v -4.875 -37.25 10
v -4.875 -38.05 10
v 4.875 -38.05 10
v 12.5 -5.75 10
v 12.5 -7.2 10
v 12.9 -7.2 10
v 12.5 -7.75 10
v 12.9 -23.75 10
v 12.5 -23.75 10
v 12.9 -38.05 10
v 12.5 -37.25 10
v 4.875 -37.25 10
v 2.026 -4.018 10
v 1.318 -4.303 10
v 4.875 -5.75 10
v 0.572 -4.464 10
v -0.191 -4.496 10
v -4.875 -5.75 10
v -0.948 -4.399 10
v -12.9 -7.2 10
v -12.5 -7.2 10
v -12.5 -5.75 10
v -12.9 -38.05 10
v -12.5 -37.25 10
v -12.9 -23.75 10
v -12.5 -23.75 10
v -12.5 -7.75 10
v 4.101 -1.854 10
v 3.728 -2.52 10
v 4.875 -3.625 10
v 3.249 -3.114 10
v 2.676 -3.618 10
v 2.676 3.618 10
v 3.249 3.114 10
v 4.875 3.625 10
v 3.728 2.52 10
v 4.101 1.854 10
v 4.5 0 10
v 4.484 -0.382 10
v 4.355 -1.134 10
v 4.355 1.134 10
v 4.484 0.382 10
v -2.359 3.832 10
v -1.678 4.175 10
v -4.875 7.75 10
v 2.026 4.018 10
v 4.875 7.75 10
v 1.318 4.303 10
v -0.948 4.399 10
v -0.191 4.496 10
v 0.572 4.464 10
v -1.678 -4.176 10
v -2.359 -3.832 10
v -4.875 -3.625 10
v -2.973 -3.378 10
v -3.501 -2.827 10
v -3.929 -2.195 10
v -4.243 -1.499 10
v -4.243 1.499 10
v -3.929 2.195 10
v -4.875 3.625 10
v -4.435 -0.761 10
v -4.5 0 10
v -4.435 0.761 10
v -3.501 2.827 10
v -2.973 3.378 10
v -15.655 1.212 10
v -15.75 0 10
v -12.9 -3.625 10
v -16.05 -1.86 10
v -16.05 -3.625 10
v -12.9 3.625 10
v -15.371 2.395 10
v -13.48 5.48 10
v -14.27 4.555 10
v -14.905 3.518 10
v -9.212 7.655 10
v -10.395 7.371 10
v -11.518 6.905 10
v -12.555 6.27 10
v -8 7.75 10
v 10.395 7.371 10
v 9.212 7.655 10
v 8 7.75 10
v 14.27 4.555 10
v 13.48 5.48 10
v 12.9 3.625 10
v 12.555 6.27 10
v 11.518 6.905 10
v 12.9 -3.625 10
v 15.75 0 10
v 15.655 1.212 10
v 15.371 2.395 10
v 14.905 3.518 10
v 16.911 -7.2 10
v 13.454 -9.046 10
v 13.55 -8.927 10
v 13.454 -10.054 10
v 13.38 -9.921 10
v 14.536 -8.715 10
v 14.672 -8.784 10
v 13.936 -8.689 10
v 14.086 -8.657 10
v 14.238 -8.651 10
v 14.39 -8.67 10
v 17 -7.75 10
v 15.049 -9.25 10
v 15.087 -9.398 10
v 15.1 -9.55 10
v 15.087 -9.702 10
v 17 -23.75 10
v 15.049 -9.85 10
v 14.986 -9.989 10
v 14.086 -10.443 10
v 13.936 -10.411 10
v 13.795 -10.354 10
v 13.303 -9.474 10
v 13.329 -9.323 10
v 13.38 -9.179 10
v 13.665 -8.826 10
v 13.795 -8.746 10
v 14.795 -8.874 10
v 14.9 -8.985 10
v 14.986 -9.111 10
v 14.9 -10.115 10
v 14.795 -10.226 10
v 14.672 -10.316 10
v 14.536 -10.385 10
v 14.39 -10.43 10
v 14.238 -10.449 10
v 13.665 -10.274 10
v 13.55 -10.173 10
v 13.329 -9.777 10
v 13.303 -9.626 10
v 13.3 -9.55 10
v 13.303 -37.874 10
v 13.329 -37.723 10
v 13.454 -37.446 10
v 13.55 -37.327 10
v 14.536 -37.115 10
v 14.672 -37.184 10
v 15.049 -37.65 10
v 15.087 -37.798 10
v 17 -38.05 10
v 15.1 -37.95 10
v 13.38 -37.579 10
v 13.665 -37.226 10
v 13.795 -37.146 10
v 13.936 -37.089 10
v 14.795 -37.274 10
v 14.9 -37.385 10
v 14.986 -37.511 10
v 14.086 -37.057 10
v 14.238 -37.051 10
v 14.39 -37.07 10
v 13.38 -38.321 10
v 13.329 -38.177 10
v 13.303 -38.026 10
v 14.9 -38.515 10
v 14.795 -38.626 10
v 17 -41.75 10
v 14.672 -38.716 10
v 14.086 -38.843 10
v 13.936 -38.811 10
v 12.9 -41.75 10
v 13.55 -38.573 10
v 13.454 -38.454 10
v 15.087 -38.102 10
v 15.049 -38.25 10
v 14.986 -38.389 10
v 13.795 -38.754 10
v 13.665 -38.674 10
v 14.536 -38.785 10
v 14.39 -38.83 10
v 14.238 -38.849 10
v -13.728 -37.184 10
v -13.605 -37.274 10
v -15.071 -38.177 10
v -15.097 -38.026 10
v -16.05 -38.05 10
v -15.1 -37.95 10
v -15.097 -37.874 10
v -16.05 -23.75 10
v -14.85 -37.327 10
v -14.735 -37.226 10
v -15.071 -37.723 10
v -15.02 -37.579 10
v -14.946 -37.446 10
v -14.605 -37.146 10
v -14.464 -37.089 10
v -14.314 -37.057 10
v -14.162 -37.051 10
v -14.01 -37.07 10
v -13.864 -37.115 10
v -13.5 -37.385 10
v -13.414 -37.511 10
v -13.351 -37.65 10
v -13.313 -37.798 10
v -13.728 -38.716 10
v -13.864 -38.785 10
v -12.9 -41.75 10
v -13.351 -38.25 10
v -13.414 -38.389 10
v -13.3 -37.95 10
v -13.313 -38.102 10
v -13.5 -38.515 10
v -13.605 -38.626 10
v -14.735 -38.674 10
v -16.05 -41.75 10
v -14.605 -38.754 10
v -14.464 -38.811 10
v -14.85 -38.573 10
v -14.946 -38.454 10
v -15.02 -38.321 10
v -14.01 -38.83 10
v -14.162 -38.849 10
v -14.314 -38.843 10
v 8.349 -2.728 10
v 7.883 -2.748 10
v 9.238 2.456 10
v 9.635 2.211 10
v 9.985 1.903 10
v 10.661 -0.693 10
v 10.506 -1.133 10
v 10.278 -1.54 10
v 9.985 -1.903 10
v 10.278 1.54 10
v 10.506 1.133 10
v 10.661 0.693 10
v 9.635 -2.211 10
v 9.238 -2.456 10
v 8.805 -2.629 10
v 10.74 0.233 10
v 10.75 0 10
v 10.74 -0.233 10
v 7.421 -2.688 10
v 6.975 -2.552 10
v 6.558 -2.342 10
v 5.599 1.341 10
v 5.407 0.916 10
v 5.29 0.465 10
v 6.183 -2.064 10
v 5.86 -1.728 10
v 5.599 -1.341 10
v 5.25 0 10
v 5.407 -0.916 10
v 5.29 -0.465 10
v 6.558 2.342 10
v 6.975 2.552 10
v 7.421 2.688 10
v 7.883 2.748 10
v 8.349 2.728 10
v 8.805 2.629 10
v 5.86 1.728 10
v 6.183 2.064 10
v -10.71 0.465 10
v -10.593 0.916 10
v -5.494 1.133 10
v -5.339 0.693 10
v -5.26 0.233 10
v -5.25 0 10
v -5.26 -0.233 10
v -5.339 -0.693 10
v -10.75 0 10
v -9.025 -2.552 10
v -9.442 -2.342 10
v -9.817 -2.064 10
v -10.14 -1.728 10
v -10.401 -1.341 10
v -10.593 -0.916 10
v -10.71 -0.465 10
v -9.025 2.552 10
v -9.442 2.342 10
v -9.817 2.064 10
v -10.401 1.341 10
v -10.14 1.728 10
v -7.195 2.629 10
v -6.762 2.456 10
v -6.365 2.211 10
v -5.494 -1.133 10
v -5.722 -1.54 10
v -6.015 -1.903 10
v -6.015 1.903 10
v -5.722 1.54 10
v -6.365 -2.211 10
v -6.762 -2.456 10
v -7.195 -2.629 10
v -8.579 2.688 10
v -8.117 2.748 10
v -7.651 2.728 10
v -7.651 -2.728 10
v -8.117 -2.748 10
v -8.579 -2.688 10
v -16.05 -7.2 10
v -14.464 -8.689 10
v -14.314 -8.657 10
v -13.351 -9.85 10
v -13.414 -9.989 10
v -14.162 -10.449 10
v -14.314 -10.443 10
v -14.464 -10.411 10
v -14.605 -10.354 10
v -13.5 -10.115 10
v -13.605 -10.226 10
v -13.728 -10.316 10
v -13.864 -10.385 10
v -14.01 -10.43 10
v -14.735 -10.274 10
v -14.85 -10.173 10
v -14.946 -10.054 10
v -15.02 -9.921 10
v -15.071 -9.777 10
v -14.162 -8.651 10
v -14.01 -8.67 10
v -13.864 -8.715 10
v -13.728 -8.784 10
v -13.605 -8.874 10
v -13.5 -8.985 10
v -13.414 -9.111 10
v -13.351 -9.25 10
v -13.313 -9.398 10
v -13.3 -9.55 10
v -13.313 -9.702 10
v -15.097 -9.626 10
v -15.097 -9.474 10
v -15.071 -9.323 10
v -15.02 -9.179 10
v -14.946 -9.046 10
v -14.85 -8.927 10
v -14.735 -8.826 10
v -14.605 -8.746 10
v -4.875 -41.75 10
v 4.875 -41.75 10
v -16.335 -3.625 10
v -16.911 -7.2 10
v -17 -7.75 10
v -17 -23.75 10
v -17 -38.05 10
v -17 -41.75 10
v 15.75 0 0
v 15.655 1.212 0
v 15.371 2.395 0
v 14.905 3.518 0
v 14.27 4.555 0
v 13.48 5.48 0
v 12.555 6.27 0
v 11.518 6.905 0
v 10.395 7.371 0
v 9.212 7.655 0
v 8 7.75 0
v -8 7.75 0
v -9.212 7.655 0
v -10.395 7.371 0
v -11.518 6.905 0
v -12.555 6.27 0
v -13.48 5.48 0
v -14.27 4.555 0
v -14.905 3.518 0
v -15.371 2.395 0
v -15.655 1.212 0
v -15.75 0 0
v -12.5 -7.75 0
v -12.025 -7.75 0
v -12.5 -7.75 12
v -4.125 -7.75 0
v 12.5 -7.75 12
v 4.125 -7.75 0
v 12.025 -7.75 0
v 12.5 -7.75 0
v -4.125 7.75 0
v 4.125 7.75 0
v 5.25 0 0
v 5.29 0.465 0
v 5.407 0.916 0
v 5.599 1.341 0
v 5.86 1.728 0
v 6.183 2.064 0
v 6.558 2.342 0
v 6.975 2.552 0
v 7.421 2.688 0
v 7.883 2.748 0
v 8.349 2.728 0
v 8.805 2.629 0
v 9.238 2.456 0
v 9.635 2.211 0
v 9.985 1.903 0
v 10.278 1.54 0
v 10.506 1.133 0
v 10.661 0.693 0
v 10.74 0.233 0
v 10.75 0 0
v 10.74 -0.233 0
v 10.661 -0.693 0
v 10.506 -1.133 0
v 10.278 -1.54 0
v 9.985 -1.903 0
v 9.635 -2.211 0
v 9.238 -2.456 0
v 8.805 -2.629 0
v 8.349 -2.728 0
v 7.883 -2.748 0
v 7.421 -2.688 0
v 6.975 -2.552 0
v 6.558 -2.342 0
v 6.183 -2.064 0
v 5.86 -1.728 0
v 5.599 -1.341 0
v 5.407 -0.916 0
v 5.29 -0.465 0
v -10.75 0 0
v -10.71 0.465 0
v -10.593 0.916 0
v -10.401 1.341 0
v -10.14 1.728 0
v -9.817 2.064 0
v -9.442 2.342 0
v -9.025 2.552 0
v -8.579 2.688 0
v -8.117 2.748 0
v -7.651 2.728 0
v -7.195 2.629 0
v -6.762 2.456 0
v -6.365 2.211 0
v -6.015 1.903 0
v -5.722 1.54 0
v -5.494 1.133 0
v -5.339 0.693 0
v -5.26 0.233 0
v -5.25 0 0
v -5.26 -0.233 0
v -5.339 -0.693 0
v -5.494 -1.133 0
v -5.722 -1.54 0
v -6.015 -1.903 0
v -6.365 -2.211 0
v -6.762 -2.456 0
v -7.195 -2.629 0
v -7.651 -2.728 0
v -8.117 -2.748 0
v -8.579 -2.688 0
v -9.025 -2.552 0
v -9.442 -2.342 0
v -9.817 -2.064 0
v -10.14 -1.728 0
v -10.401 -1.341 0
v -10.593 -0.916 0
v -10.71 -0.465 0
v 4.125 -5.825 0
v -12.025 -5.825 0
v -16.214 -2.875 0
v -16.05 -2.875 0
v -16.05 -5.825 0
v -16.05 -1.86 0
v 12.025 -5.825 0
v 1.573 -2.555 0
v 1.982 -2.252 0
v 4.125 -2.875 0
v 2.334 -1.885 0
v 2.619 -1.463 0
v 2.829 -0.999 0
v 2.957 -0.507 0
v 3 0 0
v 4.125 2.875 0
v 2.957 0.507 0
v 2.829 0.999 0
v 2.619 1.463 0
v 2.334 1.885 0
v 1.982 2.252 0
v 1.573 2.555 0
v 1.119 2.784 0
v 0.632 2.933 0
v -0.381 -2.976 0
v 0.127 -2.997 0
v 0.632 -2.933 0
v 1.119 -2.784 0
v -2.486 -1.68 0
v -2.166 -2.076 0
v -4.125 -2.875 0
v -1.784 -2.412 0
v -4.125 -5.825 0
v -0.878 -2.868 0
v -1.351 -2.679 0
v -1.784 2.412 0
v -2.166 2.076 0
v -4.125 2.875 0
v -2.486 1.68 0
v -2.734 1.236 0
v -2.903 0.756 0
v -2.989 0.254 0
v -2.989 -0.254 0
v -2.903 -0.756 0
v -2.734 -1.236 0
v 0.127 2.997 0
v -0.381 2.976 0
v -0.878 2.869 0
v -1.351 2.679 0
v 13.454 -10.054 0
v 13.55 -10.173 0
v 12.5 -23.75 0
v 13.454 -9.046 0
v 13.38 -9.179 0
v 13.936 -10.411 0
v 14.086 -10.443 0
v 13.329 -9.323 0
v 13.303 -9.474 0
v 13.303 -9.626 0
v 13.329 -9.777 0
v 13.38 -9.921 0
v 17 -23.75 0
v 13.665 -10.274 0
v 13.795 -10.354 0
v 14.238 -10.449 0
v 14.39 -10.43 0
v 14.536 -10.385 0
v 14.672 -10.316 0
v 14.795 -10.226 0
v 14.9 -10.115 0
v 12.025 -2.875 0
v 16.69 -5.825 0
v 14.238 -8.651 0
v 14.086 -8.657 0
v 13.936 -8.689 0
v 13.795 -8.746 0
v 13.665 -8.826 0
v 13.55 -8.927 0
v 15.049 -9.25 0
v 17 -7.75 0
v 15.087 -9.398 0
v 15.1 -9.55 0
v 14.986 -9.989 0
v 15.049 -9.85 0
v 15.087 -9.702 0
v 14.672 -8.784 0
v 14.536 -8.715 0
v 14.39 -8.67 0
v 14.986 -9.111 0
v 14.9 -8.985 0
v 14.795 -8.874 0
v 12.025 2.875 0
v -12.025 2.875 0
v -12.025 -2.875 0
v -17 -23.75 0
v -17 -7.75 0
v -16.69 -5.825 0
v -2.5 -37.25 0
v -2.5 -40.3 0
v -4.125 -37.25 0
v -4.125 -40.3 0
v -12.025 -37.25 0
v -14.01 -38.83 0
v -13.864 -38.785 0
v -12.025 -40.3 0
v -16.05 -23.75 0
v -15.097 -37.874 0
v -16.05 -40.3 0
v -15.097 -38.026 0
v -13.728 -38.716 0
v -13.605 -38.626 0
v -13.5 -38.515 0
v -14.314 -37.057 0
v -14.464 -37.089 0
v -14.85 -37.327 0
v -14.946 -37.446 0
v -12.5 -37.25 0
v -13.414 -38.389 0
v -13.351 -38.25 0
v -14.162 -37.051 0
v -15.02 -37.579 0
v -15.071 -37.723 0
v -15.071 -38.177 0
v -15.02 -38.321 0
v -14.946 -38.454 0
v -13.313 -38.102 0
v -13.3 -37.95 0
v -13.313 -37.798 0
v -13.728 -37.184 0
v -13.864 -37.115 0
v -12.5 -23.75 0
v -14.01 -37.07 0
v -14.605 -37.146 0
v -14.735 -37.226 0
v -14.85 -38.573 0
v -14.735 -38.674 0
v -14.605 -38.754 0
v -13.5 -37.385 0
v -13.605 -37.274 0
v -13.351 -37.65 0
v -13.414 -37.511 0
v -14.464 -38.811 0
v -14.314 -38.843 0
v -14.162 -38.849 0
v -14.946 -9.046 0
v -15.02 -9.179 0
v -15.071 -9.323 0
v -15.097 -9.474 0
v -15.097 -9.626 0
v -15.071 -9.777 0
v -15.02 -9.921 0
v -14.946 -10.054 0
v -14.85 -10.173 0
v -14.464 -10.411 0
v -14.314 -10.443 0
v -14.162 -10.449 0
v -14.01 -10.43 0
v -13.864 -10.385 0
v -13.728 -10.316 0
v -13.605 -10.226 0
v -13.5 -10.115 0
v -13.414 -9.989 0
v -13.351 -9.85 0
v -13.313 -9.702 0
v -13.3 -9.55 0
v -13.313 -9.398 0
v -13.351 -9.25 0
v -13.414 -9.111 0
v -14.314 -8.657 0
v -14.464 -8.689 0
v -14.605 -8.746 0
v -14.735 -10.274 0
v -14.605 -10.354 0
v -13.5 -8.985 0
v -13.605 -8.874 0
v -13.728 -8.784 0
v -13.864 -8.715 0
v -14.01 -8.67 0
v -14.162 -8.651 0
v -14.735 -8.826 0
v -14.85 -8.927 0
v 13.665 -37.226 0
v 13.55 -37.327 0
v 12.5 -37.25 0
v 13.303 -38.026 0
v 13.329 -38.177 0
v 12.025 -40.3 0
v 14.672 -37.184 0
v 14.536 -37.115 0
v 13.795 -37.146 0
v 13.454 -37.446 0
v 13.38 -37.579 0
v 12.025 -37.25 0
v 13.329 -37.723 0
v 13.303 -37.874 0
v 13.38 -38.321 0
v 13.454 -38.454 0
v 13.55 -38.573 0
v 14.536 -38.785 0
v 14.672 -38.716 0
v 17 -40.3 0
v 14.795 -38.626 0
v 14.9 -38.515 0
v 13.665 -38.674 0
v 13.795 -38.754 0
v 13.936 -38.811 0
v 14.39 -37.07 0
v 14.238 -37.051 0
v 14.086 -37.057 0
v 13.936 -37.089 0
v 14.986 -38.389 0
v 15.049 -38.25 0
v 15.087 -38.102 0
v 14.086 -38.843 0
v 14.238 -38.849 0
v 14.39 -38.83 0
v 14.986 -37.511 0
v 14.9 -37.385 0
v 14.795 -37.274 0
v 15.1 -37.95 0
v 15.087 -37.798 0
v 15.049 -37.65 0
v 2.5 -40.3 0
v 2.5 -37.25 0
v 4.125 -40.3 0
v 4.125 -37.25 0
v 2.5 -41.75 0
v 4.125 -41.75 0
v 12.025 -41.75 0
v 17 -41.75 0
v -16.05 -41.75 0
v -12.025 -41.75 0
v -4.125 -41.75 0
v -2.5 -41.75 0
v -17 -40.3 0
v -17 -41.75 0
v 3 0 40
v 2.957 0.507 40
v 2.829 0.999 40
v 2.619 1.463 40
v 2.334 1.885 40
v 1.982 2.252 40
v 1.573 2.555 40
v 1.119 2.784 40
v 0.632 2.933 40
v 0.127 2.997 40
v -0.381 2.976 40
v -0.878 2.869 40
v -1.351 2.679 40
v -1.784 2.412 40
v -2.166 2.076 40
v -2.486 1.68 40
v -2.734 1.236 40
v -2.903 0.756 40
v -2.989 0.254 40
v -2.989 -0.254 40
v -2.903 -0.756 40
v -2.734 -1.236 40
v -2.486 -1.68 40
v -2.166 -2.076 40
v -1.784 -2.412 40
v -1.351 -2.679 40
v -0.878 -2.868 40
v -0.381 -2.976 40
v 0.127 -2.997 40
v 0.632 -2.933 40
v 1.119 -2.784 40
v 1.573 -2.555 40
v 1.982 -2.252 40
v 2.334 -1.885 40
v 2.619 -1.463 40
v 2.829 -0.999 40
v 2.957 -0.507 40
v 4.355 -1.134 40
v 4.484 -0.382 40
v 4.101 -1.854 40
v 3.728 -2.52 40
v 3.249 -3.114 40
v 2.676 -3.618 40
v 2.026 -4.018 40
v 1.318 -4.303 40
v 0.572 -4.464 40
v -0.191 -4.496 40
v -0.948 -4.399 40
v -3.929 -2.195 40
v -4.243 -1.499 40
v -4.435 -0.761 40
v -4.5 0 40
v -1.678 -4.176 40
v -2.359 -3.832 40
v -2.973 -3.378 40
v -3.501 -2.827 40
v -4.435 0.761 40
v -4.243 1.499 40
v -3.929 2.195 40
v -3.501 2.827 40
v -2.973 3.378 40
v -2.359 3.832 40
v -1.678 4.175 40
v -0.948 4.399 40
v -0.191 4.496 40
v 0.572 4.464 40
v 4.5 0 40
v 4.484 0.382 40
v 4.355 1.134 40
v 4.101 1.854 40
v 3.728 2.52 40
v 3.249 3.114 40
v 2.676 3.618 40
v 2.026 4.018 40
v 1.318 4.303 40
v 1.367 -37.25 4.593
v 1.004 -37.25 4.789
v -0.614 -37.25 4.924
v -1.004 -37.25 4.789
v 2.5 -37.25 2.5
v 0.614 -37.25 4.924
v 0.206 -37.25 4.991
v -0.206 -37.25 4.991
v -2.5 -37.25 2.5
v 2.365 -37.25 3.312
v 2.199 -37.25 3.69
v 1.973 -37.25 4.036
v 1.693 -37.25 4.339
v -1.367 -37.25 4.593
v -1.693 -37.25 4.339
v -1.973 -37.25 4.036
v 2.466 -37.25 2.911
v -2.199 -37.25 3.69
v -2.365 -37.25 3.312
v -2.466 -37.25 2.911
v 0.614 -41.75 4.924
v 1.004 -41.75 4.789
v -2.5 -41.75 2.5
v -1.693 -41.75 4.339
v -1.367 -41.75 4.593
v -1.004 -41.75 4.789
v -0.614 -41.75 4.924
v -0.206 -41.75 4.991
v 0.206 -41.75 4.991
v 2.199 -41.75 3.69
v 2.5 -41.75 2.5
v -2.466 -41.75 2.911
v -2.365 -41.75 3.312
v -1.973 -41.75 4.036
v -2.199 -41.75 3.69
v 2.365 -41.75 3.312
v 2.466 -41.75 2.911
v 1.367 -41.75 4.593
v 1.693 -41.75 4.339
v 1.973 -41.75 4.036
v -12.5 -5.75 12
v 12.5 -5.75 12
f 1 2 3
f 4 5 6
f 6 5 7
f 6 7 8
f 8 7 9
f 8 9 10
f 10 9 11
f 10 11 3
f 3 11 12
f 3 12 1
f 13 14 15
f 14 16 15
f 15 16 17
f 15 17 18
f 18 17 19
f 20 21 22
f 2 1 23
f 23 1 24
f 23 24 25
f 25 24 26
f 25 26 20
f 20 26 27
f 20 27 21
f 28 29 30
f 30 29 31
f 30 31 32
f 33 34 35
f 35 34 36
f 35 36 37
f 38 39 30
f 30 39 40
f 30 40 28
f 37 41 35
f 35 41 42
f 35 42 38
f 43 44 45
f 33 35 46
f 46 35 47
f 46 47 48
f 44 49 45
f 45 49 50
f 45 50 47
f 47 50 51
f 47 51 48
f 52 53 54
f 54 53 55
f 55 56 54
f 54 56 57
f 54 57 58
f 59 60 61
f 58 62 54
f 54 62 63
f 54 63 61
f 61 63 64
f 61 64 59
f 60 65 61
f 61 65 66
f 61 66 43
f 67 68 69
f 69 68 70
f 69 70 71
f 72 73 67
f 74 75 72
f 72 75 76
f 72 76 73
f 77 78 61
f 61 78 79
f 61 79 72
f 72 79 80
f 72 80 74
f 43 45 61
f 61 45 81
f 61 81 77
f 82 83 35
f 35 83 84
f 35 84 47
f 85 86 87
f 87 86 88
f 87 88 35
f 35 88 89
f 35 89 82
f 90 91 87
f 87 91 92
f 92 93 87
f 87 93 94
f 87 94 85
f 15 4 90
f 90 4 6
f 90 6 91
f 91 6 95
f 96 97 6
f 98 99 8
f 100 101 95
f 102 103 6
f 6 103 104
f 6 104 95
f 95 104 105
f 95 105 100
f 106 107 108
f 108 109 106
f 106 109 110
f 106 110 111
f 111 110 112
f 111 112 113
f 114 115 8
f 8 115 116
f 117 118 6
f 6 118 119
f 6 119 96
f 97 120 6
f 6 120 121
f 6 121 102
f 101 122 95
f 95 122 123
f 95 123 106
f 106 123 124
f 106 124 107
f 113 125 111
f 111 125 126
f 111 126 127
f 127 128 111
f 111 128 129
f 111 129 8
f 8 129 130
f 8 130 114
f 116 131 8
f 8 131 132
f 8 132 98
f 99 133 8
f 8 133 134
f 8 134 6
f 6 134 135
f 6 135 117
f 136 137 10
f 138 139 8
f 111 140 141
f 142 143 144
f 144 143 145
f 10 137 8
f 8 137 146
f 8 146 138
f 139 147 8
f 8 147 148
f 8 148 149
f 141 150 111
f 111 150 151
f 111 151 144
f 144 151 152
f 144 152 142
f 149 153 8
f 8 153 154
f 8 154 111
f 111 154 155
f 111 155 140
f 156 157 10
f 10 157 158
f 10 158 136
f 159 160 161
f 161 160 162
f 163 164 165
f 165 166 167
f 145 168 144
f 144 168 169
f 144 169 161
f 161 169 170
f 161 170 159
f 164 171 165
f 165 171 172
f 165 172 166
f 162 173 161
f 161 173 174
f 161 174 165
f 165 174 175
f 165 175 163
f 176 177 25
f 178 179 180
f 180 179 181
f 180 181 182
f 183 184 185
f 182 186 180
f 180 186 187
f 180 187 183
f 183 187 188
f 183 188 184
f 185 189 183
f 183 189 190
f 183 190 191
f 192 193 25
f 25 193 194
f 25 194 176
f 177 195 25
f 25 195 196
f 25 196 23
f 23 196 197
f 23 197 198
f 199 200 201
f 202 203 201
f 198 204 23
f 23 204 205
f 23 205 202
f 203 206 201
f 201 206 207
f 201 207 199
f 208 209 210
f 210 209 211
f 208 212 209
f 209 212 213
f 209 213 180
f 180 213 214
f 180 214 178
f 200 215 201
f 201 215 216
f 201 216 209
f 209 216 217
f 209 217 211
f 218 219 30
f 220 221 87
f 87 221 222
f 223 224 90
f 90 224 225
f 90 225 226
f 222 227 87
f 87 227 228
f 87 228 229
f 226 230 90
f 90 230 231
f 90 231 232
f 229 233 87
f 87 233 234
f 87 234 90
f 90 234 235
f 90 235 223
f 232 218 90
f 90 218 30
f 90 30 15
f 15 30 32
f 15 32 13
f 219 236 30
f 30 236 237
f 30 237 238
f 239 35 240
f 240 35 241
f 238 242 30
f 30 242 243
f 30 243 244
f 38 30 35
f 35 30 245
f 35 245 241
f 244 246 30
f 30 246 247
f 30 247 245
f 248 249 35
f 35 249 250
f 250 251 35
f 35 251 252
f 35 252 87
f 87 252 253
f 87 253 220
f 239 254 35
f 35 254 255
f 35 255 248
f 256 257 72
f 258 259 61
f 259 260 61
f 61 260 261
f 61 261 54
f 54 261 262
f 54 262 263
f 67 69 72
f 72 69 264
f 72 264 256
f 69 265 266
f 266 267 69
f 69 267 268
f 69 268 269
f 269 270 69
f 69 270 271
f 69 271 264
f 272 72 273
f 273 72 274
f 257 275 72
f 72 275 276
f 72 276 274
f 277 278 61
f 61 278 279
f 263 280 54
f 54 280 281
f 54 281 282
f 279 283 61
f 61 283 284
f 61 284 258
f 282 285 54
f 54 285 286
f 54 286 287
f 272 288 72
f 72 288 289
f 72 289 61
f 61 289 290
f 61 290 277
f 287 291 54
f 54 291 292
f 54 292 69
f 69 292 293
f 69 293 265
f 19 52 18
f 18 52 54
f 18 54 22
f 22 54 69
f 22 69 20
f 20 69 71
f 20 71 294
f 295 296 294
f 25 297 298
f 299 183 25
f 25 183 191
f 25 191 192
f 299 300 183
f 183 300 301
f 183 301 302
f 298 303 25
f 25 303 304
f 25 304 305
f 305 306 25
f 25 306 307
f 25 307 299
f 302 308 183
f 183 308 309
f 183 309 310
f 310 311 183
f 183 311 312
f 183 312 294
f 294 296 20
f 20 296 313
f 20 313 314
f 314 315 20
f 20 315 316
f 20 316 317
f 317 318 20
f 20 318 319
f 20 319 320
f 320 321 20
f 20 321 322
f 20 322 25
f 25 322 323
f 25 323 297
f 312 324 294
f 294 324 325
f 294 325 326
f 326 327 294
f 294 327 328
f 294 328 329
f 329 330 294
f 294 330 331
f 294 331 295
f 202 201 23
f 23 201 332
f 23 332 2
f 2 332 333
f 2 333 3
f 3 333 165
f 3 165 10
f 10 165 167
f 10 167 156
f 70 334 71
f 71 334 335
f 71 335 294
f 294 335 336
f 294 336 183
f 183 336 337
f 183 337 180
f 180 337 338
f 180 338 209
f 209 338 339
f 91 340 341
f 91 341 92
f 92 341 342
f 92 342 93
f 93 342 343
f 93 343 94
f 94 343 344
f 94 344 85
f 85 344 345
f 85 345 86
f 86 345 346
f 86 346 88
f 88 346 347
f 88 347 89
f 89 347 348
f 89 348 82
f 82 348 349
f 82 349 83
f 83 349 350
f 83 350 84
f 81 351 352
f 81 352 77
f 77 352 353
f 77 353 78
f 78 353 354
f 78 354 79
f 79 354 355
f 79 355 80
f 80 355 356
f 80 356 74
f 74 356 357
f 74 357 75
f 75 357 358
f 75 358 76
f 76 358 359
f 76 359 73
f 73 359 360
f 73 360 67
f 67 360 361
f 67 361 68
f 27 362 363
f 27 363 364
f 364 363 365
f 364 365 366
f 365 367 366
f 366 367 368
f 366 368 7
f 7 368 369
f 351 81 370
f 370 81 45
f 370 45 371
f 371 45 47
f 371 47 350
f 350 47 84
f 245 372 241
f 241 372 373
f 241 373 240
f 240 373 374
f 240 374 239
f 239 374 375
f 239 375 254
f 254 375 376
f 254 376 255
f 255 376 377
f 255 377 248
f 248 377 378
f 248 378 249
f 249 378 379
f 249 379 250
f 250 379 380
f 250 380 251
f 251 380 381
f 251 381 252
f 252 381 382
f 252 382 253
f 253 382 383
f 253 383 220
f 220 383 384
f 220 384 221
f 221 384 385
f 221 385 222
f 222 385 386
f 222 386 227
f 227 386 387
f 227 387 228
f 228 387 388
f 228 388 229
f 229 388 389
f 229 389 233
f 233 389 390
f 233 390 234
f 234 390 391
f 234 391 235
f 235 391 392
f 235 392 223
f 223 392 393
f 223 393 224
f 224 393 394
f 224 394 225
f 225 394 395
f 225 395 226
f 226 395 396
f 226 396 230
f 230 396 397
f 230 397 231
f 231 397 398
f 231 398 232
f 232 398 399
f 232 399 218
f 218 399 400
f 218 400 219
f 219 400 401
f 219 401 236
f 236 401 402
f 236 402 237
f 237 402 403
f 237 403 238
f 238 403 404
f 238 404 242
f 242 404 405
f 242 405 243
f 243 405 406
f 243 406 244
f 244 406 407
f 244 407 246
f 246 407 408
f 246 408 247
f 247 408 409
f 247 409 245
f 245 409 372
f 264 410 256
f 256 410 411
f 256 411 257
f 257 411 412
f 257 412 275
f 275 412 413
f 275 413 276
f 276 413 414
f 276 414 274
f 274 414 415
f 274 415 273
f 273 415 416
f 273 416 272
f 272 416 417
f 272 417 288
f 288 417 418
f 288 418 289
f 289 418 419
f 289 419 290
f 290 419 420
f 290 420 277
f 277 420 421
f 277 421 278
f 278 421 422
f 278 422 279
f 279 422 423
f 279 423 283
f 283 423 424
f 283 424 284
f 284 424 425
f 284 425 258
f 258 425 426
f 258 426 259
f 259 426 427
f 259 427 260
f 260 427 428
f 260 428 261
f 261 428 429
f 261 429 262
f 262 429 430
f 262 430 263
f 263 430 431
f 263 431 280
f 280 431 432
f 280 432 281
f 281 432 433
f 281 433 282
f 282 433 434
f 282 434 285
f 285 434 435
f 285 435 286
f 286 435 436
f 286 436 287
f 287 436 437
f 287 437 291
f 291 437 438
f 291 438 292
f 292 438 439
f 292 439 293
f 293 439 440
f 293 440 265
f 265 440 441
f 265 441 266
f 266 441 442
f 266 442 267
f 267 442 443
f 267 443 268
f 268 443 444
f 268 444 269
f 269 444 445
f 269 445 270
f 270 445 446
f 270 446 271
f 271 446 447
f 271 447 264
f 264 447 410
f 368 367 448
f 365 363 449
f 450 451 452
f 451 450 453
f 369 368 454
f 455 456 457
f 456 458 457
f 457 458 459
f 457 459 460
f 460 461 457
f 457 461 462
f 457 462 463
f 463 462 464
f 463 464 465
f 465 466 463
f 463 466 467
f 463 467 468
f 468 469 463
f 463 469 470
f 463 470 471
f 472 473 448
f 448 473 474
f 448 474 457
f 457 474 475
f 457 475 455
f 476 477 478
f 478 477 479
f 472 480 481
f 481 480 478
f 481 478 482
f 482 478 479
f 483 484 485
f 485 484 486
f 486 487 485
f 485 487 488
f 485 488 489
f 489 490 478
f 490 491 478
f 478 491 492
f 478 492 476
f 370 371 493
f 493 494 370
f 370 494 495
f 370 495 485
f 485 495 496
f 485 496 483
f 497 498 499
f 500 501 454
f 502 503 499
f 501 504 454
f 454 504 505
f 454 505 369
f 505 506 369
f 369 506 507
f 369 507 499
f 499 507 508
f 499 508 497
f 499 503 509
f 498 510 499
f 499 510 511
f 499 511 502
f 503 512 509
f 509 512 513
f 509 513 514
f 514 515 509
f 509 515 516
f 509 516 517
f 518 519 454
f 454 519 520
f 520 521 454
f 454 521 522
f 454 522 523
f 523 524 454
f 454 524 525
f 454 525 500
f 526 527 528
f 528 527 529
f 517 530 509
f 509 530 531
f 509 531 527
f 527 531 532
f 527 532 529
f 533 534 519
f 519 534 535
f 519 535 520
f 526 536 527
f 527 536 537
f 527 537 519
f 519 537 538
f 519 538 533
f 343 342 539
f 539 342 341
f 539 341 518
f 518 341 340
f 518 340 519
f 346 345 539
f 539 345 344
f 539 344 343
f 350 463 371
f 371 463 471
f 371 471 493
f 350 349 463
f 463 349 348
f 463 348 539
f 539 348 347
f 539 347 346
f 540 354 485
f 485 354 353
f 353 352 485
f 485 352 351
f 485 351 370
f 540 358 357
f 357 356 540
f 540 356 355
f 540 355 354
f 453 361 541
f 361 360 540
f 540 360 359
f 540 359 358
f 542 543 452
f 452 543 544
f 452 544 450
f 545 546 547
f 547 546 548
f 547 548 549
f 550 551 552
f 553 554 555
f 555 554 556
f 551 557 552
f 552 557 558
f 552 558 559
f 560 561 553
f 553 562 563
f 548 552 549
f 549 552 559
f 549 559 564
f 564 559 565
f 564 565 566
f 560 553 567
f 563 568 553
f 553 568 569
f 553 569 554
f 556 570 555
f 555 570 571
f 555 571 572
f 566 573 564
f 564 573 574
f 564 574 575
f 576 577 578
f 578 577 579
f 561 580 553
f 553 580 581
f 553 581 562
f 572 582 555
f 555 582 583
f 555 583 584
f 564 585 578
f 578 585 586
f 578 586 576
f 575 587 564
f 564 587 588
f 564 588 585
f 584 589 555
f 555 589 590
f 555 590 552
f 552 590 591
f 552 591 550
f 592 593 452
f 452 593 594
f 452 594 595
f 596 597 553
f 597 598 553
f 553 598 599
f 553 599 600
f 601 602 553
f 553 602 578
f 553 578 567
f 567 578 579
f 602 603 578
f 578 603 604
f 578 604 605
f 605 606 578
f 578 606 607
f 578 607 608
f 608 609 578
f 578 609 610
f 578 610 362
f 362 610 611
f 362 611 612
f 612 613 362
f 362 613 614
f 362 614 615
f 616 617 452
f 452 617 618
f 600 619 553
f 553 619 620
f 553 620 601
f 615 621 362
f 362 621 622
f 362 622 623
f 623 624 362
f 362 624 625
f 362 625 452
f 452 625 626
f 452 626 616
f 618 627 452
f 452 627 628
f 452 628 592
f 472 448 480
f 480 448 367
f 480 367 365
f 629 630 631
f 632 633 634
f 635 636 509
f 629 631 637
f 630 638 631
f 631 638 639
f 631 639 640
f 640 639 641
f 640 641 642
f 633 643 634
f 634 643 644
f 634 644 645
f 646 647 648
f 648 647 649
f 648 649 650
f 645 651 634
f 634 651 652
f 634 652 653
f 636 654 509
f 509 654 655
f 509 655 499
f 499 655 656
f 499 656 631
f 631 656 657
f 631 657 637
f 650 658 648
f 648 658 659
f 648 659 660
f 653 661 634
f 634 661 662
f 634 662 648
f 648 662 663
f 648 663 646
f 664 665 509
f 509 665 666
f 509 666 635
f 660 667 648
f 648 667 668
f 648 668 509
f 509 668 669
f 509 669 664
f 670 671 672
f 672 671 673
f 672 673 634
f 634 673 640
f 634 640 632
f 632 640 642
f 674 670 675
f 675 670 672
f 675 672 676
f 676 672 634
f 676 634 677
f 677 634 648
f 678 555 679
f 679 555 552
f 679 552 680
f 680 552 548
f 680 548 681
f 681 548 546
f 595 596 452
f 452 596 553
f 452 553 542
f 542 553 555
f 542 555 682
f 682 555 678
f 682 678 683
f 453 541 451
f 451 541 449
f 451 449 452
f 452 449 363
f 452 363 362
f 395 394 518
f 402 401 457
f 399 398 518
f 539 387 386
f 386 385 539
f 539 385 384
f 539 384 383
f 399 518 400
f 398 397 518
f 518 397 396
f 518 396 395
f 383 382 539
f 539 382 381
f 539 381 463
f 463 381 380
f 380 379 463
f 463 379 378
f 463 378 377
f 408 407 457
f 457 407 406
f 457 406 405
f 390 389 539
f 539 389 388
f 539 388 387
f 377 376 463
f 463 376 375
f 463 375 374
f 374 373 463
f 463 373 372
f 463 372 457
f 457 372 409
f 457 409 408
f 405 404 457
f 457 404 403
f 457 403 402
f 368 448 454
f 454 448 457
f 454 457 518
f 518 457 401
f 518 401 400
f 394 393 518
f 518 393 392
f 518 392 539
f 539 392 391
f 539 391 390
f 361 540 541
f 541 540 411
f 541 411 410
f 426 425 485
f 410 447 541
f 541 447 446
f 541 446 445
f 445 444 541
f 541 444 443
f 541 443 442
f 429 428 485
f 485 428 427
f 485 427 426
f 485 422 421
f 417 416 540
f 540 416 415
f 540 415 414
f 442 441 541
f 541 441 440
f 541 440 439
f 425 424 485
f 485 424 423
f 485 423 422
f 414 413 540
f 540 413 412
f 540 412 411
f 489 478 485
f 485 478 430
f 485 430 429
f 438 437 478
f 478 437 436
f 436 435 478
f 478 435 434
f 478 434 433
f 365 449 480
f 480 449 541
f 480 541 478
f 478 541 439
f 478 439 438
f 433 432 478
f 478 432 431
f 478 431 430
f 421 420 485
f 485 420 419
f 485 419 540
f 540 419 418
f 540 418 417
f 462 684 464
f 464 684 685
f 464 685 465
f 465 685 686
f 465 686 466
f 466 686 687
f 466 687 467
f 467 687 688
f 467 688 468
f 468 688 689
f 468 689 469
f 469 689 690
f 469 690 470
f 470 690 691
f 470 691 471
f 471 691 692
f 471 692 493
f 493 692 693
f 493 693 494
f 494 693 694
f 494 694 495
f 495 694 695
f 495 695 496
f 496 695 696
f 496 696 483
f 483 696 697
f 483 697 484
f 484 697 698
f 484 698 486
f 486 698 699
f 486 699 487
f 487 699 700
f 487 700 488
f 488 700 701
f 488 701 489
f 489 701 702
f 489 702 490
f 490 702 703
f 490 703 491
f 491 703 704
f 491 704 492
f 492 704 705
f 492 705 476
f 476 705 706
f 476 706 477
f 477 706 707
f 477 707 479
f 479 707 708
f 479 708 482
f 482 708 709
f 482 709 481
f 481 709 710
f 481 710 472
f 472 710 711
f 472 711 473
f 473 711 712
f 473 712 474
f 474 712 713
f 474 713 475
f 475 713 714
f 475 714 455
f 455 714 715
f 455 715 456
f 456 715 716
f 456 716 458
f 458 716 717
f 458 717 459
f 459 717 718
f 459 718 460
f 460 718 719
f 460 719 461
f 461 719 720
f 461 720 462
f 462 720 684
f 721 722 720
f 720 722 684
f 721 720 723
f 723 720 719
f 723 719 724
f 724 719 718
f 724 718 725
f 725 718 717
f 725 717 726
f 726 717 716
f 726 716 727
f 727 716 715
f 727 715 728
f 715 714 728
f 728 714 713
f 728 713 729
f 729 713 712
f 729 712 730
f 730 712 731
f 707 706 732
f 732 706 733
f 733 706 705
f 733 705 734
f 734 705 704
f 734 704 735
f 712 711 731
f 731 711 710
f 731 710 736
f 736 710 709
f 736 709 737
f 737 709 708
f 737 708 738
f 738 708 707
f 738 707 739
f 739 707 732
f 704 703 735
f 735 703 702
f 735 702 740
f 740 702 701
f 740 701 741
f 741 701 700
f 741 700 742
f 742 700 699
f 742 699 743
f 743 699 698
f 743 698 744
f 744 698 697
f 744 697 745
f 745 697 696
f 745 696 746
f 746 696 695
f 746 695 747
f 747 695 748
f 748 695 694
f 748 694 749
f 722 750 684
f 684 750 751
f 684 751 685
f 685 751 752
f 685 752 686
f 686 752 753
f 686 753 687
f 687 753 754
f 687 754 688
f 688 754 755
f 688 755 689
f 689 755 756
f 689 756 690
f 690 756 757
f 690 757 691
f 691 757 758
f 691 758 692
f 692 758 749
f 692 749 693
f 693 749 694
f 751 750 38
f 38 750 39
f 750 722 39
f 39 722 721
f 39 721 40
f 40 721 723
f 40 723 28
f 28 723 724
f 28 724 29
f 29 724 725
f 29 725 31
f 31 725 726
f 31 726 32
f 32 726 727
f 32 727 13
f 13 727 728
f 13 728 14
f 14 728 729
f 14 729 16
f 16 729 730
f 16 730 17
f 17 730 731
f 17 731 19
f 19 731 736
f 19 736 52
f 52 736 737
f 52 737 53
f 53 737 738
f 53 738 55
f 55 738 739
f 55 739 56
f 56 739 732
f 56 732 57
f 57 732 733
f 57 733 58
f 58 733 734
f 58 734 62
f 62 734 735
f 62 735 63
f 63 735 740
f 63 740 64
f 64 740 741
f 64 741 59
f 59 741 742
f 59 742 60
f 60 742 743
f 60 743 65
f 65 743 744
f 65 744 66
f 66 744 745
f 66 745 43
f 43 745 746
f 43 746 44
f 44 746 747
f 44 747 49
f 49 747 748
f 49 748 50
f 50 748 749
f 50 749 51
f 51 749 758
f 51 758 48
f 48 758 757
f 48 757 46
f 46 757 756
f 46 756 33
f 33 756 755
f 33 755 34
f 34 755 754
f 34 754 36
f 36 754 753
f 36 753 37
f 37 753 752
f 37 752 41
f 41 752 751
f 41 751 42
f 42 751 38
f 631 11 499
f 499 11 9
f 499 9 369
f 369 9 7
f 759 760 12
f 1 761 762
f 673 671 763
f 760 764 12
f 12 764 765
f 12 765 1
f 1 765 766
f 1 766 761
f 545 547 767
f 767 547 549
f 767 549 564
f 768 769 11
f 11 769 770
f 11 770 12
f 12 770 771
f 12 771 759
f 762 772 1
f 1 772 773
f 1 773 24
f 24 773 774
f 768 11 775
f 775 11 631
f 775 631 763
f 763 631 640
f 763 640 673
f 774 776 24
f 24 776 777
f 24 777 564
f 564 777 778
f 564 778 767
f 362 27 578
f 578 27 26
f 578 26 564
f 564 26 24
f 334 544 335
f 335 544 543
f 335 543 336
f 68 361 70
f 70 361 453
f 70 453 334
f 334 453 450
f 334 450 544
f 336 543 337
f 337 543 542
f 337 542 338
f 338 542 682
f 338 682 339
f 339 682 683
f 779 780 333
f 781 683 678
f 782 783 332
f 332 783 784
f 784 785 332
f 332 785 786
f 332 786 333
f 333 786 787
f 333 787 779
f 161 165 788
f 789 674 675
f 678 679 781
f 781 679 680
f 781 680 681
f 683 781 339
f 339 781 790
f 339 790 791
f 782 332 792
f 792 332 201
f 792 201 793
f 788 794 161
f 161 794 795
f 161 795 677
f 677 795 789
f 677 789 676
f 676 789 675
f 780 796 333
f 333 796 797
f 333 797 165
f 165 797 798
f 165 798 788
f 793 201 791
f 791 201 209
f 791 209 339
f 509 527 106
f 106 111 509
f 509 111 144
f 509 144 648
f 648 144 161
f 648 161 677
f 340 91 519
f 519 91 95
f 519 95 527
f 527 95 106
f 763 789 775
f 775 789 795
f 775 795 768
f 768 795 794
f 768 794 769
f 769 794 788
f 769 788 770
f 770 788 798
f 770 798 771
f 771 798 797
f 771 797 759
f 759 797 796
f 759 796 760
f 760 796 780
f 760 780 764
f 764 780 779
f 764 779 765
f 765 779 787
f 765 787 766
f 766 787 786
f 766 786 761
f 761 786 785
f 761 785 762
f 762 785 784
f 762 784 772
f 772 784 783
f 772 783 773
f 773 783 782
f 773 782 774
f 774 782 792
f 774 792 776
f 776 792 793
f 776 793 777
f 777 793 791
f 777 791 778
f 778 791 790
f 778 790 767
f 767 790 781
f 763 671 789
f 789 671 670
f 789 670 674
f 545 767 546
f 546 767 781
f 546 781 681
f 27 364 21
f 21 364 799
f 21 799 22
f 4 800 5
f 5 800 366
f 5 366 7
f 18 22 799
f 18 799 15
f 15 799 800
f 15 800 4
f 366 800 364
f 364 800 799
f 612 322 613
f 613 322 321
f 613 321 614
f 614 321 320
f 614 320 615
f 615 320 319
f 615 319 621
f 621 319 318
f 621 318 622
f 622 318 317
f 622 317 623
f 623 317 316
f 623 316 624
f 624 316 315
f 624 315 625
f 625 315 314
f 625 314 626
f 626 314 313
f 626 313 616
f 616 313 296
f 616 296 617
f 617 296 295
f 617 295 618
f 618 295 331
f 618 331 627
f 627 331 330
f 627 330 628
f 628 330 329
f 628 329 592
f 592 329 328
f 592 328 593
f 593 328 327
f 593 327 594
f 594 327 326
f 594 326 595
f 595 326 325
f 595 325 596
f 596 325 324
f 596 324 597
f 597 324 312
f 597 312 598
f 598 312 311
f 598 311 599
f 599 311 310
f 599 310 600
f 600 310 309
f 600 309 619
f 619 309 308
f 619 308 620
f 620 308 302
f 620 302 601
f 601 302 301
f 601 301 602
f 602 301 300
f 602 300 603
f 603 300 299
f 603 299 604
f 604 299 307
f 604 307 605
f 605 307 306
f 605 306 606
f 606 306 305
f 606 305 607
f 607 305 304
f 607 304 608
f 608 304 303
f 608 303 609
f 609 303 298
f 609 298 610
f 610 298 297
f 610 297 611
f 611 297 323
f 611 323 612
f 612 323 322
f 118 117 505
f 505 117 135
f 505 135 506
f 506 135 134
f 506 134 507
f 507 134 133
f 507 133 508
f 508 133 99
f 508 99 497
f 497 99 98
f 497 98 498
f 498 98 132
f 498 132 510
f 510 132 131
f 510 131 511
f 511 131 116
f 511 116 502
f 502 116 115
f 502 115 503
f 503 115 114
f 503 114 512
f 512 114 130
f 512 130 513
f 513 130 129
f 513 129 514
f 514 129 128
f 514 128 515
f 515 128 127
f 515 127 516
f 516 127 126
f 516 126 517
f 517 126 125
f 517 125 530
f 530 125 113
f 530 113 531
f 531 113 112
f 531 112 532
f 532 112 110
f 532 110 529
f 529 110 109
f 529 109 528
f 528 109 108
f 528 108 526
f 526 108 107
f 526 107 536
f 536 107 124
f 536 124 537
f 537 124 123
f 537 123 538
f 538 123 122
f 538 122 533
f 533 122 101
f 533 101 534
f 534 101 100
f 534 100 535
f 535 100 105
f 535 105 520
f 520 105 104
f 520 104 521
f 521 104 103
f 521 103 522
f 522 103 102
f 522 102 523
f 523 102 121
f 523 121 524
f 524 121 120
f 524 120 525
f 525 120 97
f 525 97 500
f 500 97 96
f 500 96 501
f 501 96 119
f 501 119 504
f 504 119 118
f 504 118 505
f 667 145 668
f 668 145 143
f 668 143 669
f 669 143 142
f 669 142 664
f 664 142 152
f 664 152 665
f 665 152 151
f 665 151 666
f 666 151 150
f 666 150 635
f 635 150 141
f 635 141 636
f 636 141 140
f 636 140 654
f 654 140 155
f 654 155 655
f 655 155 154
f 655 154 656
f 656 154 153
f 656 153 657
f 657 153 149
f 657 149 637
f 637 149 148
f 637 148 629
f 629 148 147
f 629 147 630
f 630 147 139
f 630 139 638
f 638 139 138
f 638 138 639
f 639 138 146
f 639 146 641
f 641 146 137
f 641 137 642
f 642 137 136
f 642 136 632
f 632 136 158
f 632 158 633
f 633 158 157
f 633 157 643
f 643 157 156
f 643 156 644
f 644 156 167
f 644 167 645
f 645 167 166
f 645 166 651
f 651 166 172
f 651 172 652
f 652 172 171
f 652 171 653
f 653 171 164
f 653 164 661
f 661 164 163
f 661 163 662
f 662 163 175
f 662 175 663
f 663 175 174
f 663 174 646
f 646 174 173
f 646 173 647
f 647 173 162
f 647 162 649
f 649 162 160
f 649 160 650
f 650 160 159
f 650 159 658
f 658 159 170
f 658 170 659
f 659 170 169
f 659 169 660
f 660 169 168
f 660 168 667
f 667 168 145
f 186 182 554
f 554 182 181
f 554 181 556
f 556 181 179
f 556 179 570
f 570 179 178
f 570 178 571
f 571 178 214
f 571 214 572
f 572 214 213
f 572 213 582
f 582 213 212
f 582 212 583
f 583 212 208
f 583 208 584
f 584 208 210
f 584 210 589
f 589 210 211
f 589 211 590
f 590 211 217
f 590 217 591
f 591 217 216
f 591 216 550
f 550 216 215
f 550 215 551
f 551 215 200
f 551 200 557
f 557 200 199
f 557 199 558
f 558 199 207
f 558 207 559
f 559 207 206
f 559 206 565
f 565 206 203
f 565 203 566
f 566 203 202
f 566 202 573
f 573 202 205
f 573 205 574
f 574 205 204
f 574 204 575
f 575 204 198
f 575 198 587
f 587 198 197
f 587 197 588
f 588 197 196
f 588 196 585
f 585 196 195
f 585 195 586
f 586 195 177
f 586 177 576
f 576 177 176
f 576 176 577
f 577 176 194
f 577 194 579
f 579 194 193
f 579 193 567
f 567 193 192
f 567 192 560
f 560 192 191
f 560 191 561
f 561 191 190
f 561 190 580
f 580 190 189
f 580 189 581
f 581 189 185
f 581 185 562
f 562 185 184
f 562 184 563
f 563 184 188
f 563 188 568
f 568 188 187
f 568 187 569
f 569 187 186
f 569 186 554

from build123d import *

# Parameters (mm, degrees)
SKETCH1_R           = 2.75
BOSS_EXTRUDE1_DEPTH = 10
SKETCH2_R           = 3
CUT_EXTRUDE1_DEPTH  = 15
SKETCH3_R           = 4.5
SKETCH3_R_2         = 3
BOSS_EXTRUDE2_DEPTH = 30
BOSS_EXTRUDE4_DEPTH = 10
CUT_EXTRUDE2_DEPTH  = 10
SKETCH7_W           = 25
SKETCH7_H           = 2
BOSS_EXTRUDE6_DEPTH = 2
SKETCH8_R           = 0.9
CUT_EXTRUDE3_DEPTH  = 19


with BuildPart() as part:
    # Sketch1 → Boss-Extrude1 (new body)
    with BuildSketch(Plane.XY):
        with BuildLine():
            Line((8, 7.75), (-8, 7.75))
            ThreePointArc((-8, 7.75), (-15.75, 0), (-8, -7.75))
            Line((-8, -7.75), (8, -7.75))
            ThreePointArc((8, -7.75), (15.75, 0), (8, 7.75))
        make_face()
        with Locations((-8, 0)):
            Circle(SKETCH1_R, mode=Mode.SUBTRACT)
        with Locations((8, 0)):
            Circle(SKETCH1_R, mode=Mode.SUBTRACT)
    extrude(amount=BOSS_EXTRUDE1_DEPTH)

    # Sketch2 → Cut-Extrude1 (cut)
    with BuildSketch(Plane.XY.offset(10)):
        Circle(SKETCH2_R)
    extrude(amount=-CUT_EXTRUDE1_DEPTH, mode=Mode.SUBTRACT)

    # Sketch3 → Boss-Extrude2 (add)
    with BuildSketch(Plane.XY.offset(10)):
        Circle(SKETCH3_R)
        Circle(SKETCH3_R_2, mode=Mode.SUBTRACT)
    extrude(amount=BOSS_EXTRUDE2_DEPTH)

    # Sketch5 → Boss-Extrude4 (add)
    with BuildSketch(Plane.XY):
        Polygon((-12.5, -7.75), (-17, -7.75), (-17, -41.75), (17, -41.75), (17, -7.75), (12.5, -7.75), (12.5, -12.25), (12.5, -37.25), (-12.5, -37.25), (-12.5, -12.25), align=None)
        with BuildLine():
            ThreePointArc((-8, -7.75), (-13.480077554, -5.480077554), (-15.75, 0))
            Line((-15.75, 0), (-17, -7.75))
            Line((-17, -7.75), (-12.5, -7.75))
            Line((-12.5, -7.75), (-8, -7.75))
        make_face()
        with BuildLine():
            ThreePointArc((15.75, 0), (13.480077554, -5.480077554), (8, -7.75))
            Line((8, -7.75), (12.5, -7.75))
            Line((12.5, -7.75), (17, -7.75))
            Line((17, -7.75), (15.75, 0))
        make_face()
    extrude(amount=BOSS_EXTRUDE4_DEPTH)

    # Sketch6 → Cut-Extrude2 (cut)
    with BuildSketch(Plane.XZ.offset(41.75)):
        with BuildLine():
            Line((-2.5, 0), (2.5, 0))
            Line((2.5, 0), (2.5, 2.5))
            ThreePointArc((2.5, 2.5), (0, 5), (-2.5, 2.5))
            Line((-2.5, 2.5), (-2.5, 0))
        make_face()
    extrude(amount=-CUT_EXTRUDE2_DEPTH, mode=Mode.SUBTRACT)

    # Sketch7 → Boss-Extrude6 (add)
    with BuildSketch(Plane.XY.offset(10)):
        with Locations((0, -6.75)):
            Rectangle(SKETCH7_W, SKETCH7_H)
    extrude(amount=BOSS_EXTRUDE6_DEPTH)

    # Sketch8 → Cut-Extrude3 (cut)
    with BuildSketch(Plane.XY.offset(10)):
        with Locations((-14.2, -9.55)):
            Circle(SKETCH8_R)
        with Locations((14.2, -9.55)):
            Circle(SKETCH8_R)
        with Locations((14.2, -37.95)):
            Circle(SKETCH8_R)
        with Locations((-14.2, -37.95)):
            Circle(SKETCH8_R)
    extrude(amount=-CUT_EXTRUDE3_DEPTH, mode=Mode.SUBTRACT)


solid = part.part
